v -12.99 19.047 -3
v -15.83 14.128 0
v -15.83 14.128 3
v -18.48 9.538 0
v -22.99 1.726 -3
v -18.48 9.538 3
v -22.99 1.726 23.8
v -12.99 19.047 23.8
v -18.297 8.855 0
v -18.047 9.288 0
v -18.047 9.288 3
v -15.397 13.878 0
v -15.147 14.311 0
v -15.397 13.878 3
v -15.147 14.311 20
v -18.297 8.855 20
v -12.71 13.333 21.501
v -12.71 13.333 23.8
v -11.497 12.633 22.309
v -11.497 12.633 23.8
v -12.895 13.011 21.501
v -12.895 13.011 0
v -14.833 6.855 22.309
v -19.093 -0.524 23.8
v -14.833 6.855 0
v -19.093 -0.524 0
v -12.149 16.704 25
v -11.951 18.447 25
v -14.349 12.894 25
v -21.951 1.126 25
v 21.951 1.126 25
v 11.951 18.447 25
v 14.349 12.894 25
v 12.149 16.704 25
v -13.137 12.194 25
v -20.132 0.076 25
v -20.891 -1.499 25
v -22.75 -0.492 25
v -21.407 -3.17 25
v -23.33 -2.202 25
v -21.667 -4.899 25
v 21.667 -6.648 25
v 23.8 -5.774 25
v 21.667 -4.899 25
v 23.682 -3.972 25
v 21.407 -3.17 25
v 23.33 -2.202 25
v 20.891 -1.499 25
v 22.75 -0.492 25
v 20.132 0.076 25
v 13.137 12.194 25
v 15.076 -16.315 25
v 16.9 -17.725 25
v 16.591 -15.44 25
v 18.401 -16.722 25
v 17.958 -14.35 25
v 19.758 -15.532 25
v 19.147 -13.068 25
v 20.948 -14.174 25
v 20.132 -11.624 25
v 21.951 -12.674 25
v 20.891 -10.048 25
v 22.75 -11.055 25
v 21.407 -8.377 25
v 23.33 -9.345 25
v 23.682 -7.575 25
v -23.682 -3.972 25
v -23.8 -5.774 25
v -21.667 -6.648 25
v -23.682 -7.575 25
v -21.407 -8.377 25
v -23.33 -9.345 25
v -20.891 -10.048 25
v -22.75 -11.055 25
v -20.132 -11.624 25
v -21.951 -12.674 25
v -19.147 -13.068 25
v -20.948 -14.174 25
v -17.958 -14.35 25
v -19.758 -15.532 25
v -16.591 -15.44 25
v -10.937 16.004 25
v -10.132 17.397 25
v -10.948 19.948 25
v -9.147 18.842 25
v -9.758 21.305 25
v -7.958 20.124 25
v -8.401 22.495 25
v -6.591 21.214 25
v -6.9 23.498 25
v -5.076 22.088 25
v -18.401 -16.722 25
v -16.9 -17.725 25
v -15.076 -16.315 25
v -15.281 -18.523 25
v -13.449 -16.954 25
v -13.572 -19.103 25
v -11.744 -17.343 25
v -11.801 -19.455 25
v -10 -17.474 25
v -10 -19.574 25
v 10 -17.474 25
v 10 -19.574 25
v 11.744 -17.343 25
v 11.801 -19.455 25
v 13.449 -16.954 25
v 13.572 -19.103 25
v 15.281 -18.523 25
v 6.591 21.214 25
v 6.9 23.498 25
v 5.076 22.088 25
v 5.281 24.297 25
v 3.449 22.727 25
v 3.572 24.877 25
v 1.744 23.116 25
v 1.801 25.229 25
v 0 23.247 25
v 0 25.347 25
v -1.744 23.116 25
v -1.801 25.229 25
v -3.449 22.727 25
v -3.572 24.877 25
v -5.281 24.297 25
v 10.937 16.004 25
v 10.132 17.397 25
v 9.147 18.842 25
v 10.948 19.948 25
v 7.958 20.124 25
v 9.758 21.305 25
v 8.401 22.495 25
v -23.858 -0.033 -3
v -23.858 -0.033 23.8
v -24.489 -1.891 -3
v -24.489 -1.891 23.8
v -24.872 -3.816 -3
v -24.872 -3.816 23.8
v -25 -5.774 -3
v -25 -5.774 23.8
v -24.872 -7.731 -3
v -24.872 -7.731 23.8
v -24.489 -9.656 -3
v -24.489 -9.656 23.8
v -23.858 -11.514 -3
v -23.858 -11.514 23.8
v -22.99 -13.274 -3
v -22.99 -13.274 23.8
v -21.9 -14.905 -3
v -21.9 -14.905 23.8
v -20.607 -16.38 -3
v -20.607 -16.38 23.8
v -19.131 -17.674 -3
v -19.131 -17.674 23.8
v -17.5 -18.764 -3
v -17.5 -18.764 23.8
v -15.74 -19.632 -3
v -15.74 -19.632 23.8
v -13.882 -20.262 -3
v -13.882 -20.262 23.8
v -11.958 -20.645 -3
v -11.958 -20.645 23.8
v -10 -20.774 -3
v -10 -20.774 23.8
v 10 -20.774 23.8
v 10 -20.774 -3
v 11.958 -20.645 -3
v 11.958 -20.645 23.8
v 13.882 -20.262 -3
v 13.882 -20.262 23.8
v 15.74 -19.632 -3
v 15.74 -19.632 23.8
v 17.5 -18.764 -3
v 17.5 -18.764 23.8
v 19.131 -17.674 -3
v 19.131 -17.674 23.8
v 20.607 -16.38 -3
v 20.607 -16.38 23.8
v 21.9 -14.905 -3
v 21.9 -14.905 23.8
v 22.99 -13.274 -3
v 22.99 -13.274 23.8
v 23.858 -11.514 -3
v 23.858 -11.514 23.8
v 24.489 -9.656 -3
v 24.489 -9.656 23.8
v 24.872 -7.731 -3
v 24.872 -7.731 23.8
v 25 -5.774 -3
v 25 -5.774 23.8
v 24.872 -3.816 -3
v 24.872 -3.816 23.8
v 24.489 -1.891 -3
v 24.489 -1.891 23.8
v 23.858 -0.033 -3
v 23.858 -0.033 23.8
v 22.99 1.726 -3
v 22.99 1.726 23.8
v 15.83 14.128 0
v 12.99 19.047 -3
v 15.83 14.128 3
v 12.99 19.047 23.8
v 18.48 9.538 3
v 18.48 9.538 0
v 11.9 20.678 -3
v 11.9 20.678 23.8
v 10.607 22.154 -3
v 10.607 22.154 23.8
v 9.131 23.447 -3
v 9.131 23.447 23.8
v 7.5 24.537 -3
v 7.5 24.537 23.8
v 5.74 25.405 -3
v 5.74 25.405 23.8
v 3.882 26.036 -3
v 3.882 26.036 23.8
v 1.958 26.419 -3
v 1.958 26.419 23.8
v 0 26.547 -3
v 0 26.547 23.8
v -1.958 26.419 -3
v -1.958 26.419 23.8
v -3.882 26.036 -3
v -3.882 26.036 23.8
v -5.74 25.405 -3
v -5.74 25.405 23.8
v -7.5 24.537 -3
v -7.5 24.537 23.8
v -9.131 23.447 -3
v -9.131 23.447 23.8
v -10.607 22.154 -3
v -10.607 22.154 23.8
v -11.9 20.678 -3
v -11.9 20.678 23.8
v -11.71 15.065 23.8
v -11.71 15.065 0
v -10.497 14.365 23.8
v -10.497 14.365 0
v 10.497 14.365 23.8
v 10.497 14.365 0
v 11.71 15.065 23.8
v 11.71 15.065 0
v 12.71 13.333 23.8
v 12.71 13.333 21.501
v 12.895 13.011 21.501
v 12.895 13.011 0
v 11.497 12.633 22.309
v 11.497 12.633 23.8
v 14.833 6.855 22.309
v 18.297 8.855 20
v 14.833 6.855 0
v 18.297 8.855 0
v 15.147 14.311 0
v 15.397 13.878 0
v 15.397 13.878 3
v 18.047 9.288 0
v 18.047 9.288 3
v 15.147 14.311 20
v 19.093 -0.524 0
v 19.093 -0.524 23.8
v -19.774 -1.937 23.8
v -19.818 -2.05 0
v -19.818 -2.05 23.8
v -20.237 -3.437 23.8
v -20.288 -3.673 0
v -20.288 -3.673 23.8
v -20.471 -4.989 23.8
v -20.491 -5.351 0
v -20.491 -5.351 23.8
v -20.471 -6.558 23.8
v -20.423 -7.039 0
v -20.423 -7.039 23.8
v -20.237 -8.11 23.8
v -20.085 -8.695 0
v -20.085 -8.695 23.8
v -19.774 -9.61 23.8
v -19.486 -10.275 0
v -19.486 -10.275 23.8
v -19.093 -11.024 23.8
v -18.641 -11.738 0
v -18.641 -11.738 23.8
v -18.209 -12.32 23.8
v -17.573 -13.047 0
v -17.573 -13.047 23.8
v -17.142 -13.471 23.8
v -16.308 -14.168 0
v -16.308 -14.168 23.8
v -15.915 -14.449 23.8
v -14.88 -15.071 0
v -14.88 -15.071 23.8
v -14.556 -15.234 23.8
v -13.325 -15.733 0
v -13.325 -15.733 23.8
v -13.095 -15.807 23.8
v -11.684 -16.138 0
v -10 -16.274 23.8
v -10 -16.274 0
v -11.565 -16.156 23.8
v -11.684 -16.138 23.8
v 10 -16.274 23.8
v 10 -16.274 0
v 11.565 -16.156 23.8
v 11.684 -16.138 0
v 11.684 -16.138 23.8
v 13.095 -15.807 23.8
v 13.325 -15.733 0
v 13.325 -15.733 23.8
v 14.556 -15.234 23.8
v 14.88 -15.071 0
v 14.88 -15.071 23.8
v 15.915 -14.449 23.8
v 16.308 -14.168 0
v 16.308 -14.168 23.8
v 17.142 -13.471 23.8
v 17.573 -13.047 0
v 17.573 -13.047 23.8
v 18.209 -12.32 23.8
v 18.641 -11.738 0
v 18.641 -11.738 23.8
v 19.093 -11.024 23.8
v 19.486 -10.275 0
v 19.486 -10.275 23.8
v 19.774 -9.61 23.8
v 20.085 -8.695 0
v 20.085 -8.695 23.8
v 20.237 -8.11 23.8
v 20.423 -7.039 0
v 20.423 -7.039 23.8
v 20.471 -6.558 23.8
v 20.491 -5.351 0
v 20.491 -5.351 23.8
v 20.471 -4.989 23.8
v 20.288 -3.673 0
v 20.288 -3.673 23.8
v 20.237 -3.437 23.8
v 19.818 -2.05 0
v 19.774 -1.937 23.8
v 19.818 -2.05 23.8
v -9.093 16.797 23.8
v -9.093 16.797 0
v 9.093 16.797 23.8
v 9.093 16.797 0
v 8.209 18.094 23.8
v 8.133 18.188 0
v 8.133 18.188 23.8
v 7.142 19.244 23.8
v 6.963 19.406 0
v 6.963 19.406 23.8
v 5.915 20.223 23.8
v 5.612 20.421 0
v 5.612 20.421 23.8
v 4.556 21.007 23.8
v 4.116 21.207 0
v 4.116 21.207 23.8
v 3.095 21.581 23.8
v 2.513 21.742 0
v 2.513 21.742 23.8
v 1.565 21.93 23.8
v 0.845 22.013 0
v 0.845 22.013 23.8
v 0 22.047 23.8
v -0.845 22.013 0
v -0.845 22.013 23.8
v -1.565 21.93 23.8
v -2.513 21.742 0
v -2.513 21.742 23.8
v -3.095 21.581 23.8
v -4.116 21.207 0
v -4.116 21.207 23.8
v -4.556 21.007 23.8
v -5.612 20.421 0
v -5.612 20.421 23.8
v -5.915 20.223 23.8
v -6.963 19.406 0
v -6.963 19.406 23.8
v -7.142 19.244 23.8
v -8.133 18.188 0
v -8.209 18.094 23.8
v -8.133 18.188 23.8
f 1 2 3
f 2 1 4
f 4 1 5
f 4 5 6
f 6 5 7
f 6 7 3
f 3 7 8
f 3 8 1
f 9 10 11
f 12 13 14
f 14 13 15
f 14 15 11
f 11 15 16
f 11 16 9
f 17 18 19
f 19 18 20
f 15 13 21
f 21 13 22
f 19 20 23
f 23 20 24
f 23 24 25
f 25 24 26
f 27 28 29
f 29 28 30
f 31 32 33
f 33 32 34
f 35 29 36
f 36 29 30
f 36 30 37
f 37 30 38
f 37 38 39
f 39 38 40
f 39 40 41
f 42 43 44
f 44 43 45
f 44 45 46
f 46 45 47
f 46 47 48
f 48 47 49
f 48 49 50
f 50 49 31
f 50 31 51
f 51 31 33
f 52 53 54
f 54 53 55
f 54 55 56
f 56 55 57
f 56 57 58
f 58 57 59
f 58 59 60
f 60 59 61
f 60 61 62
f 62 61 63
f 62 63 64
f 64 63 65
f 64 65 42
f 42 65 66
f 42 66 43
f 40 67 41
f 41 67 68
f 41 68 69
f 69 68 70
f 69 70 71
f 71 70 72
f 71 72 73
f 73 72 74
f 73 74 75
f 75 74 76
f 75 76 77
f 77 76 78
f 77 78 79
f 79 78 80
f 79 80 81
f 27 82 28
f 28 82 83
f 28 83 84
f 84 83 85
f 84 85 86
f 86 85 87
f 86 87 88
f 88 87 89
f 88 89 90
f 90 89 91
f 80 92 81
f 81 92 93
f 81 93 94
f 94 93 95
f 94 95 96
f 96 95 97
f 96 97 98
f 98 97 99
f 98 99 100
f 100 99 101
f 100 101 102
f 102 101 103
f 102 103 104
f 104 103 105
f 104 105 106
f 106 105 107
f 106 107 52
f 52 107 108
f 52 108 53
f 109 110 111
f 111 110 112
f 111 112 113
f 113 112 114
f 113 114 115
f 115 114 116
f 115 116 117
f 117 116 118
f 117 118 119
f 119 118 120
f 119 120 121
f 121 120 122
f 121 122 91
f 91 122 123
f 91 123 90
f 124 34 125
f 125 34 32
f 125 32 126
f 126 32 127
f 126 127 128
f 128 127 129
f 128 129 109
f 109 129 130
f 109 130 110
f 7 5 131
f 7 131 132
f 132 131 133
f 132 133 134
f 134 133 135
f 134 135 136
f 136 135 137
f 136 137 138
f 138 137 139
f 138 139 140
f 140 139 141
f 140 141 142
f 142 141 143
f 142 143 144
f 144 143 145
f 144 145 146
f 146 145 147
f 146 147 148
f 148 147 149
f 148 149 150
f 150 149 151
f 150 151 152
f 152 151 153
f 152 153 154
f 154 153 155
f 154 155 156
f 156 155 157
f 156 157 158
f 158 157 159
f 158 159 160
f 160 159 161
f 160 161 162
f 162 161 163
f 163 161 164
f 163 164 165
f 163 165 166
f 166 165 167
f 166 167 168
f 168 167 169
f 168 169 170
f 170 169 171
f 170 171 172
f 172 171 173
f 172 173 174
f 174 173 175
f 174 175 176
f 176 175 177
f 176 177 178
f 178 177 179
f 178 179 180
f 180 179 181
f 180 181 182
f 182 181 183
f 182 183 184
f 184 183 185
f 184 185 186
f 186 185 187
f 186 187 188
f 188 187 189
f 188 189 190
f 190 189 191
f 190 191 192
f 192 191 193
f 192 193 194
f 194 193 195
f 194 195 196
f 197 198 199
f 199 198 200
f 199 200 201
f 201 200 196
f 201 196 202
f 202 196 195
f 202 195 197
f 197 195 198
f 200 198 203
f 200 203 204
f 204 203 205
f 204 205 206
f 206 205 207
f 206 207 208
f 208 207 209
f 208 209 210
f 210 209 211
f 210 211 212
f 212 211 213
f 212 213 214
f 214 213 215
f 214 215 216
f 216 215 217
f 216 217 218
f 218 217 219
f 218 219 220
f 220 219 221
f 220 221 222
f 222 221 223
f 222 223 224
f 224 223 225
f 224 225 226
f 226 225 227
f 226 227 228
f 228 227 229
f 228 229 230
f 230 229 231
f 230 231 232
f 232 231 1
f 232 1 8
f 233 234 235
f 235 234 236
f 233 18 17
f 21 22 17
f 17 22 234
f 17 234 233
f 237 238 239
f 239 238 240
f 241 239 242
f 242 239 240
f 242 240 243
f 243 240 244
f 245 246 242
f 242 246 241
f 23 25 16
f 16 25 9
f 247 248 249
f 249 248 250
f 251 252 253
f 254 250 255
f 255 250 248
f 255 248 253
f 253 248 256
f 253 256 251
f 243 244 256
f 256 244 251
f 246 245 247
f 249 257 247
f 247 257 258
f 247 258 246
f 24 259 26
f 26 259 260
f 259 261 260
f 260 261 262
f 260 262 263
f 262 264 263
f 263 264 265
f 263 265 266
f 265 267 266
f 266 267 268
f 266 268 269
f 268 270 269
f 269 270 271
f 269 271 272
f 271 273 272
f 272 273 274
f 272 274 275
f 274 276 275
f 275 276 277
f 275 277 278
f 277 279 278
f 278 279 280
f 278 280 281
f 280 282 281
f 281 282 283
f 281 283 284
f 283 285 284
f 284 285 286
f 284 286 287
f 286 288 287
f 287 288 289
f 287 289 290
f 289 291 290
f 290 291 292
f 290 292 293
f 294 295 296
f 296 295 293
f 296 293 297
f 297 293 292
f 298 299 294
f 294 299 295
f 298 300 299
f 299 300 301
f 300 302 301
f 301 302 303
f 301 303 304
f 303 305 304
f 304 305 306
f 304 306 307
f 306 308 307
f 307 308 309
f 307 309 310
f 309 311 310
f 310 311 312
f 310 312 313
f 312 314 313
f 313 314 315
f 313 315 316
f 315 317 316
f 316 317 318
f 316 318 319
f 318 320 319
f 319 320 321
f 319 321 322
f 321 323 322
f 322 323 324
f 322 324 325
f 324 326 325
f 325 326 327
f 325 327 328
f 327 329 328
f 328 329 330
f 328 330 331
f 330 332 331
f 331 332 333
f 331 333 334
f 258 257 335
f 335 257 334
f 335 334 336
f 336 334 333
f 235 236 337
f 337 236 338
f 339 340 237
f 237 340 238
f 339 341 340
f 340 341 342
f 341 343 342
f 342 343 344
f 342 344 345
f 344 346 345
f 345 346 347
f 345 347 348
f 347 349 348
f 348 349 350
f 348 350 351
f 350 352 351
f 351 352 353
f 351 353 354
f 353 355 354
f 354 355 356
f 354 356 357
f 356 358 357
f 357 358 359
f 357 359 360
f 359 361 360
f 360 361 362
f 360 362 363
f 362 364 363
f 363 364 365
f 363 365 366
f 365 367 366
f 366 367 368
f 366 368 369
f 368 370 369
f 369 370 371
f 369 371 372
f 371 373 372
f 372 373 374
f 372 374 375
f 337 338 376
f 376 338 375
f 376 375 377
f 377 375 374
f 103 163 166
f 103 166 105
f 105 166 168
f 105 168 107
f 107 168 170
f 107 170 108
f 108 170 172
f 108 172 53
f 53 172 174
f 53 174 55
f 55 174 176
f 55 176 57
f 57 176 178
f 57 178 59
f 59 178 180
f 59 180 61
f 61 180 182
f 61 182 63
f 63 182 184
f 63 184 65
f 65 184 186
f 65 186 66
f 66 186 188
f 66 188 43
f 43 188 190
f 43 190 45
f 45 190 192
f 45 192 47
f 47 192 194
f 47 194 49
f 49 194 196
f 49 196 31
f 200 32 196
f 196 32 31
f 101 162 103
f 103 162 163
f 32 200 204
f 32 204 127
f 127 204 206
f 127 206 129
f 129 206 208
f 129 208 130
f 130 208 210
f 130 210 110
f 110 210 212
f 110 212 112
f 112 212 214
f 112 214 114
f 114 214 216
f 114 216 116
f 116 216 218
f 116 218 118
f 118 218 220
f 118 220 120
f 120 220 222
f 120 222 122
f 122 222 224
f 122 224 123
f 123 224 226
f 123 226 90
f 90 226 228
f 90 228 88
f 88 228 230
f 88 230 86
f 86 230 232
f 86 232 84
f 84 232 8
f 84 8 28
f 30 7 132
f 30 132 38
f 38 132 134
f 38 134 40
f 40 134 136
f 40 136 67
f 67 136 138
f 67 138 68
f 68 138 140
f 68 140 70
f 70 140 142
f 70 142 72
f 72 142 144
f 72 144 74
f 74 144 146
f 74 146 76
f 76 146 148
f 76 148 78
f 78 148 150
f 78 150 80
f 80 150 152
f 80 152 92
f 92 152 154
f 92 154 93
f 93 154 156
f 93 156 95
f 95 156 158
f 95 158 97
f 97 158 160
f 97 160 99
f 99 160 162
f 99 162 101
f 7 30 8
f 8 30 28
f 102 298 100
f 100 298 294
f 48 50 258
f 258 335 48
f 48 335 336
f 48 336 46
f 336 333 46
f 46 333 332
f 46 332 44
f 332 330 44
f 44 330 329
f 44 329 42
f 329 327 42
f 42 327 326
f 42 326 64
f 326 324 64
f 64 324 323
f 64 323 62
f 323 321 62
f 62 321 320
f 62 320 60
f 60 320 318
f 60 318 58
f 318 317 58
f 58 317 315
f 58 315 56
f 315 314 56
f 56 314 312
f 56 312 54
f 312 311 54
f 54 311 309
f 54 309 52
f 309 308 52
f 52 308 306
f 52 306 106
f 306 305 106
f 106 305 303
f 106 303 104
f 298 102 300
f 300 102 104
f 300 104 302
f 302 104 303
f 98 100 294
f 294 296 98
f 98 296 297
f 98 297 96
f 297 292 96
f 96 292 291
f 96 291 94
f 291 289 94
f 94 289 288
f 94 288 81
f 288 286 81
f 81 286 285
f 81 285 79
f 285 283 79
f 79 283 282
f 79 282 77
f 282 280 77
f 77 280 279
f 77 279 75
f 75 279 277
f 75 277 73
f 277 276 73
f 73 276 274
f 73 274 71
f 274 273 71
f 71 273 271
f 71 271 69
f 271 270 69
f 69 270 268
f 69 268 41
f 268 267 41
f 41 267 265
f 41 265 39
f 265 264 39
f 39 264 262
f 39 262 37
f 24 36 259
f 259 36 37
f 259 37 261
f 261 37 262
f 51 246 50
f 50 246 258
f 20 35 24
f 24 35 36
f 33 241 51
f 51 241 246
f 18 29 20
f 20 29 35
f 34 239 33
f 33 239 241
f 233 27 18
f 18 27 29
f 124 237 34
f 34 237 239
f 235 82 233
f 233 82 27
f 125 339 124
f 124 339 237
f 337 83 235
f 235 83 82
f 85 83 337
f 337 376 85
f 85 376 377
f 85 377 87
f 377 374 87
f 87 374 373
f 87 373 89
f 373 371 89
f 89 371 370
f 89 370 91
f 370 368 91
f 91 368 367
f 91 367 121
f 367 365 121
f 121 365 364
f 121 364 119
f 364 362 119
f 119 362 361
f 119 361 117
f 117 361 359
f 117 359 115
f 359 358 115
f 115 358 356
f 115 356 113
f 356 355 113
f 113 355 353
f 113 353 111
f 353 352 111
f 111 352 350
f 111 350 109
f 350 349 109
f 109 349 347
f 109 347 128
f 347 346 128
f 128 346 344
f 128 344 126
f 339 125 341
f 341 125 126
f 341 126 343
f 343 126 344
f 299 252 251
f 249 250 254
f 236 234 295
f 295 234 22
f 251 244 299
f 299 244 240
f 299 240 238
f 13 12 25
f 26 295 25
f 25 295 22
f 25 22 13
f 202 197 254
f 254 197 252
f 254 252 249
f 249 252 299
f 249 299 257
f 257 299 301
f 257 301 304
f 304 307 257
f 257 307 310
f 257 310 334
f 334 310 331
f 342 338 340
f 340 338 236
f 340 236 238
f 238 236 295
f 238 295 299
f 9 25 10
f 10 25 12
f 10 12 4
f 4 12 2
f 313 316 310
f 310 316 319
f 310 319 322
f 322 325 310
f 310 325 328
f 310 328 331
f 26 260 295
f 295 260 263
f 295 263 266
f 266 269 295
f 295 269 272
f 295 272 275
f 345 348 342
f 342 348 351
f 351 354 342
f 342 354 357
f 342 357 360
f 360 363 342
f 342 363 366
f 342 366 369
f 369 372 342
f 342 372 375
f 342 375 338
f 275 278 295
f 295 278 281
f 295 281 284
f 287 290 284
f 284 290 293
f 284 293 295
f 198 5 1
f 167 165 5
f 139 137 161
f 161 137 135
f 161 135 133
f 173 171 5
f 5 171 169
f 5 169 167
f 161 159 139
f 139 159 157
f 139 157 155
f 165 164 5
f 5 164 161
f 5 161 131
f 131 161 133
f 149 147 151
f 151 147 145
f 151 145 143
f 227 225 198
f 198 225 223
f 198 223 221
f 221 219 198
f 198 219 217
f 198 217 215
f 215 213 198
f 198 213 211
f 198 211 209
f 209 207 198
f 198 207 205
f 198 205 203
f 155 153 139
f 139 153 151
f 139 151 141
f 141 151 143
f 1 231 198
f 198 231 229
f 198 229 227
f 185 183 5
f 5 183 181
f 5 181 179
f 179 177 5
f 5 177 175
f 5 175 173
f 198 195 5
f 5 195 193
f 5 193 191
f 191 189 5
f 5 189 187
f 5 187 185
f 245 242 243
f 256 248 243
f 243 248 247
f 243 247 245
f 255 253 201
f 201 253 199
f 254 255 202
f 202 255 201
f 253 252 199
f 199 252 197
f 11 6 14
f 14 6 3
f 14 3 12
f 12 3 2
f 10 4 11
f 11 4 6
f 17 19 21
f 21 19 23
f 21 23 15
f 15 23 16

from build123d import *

# Parameters (mm, degrees)
BOSS_EXTRU_1_DEPTH      = 25
ENL_V_MAT_EXTRU_1_DEPTH = 20
ENL_V_MAT_EXTRU_2_DEPTH = 45.21248121115924
ENL_V_MAT_EXTRU_4_DEPTH = 20
ENL_V_MAT_EXTRU_3_DEPTH = 45.21248121115924
CHANFREIN1_SIZE         = 1.2
BOSS_EXTRU_2_START      = 3
BOSS_EXTRU_2_DEPTH      = 3
ENL_V_MAT_EXTRU_5_REACH = 47.001
ESQUISSE7_W             = 1.399999999999995
ESQUISSE7_H             = 20
CHANFREIN2_SIZE2        = 4
CHANFREIN2_SIZE         = 2.309401077
ENL_V_MAT_EXTRU_6_REACH = 60.237
CHANFREIN3_SIZE2        = 4
CHANFREIN3_SIZE         = 2.309401077


with BuildPart() as part:
    # Esquisse1 → Boss.-Extru.1 (new body)
    with BuildSketch(Plane.XY):
        with BuildLine():
            Line((-22.99038105676658, 1.7264973081037391), (-12.990381056766578, 19.047005383792516))
            ThreePointArc((-12.990381056766578, 19.047005383792516), (9.5e-16, 26.547005383792516), (12.990381056766578, 19.047005383792513))
            Line((12.990381056766578, 19.047005383792513), (22.990381056766577, 1.726497308103746))
            ThreePointArc((22.990381056766577, 1.726497308103746), (22.99038105676658, -13.273502691896258), (9.999999999999996, -20.77350269189626))
            Line((9.999999999999996, -20.77350269189626), (-10, -20.773502691896258))
            ThreePointArc((-10, -20.773502691896258), (-22.99038105676658, -13.273502691896255), (-22.99038105676658, 1.7264973081037391))
        make_face()
        with BuildLine():
            Line((-18.66025403784439, -0.7735026918962613), (-8.66025403784439, 16.547005383792516))
            ThreePointArc((-8.66025403784439, 16.547005383792516), (-2.69e-15, 21.547005383792516), (8.660254037844384, 16.547005383792516))
            Line((8.660254037844384, 16.547005383792516), (18.660254037844386, -0.7735026918962474))
            ThreePointArc((18.660254037844386, -0.7735026918962474), (18.660254037844393, -10.773502691896258), (10, -15.773502691896258))
            Line((10, -15.773502691896258), (-10, -15.773502691896258))
            ThreePointArc((-10, -15.773502691896258), (-18.66025403784439, -10.773502691896262), (-18.66025403784439, -0.7735026918962613))
        make_face(mode=Mode.SUBTRACT)
    extrude(amount=BOSS_EXTRU_1_DEPTH)

    # Esquisse2 → Enlèv. mat.-Extru.1 (cut)
    with BuildSketch(Plane.XY.offset(25)):
        Polygon((-10.914359353944898, 12.642780450695335), (-12.300000000000002, 13.442780450695334), (-11.600000000000003, 14.655216015993549), (-10.2143593539449, 13.855216015993548), align=None)
        Polygon((10.214359353944896, 13.855216015993548), (11.6, 14.655216015993549), (12.299999999999999, 13.442780450695334), (10.914359353944896, 12.642780450695334), align=None)
    extrude(amount=-ENL_V_MAT_EXTRU_1_DEPTH, mode=Mode.SUBTRACT)

    # Esquisse3 → Enlèv. mat.-Extru.2 (cut, through all)
    with BuildSketch(Plane.XY.offset(25)):
        Polygon((-10.064359353944898, 14.115023637128878), (-11.709807621135333, 15.06502363712888), (-12.709807621135335, 13.332972829560003), (-11.064359353944898, 12.382972829560003), align=None)
    enl_v_mat_extru_2 = extrude(amount=-ENL_V_MAT_EXTRU_2_DEPTH, mode=Mode.SUBTRACT)

    # Symétrie1: Enlèv. mat.-Extru.2 across plane
    add(enl_v_mat_extru_2.mirror(Plane(origin=(0, 0, 0), x_dir=(0, 0, 1), z_dir=(1, 0, 0))), mode=Mode.SUBTRACT)

    # Esquisse6 → Enlèv. mat.-Extru.4 (cut)
    with BuildSketch(Plane(origin=(0, 0, 0), x_dir=(-1, 0, 0), z_dir=(0, 0, -1))):
        Polygon((11.250000000000002, 12.061433798642659), (15.147114317029969, 14.31143379864266), (18.297114317029976, 8.855473754800698), (14.4, 6.605473754800695), align=None)
        Polygon((-11.249999999999998, 12.061433798642659), (-15.14711431702997, 14.311433798642657), (-18.297114317029973, 8.855473754800693), (-14.399999999999997, 6.605473754800696), align=None)
    extrude(amount=-ENL_V_MAT_EXTRU_4_DEPTH, mode=Mode.SUBTRACT)

    # Esquisse5 → Enlèv. mat.-Extru.3 (cut, through all)
    with BuildSketch(Plane.XY.offset(25)):
        with BuildLine():
            Line((-9.093266739736611, 16.797005383792516), (-10.497372055837118, 14.365023637128878))
            Line((-10.497372055837118, 14.365023637128878), (-11.497372055837118, 12.632972829560003))
            Line((-11.497372055837118, 12.632972829560003), (-19.093266739736613, -0.5235026918962613))
            ThreePointArc((-19.093266739736613, -0.5235026918962613), (-19.09326673973661, -11.023502691896262), (-10.000000000000002, -16.273502691896258))
            Line((-10.000000000000002, -16.273502691896258), (10.000000000000004, -16.273502691896258))
            ThreePointArc((10.000000000000004, -16.273502691896258), (19.09326673973661, -11.023502691896251), (19.093266739736602, -0.523502691896249))
            Line((19.093266739736602, -0.523502691896249), (11.497372055837113, 12.632972829560005))
            Line((11.497372055837113, 12.632972829560005), (10.497372055837118, 14.36502363712888))
            Line((10.497372055837118, 14.36502363712888), (9.0932667397366, 16.797005383792516))
            ThreePointArc((9.0932667397366, 16.797005383792516), (-2.66e-15, 22.047005383792516), (-9.093266739736611, 16.797005383792516))
        make_face()
        with BuildLine():
            Line((-8.66025403784439, 16.547005383792516), (-10.064359353944898, 14.115023637128878))
            Line((-10.064359353944898, 14.115023637128878), (-11.064359353944894, 12.382972829560005))
            Line((-11.064359353944894, 12.382972829560005), (-18.66025403784439, -0.7735026918962613))
            ThreePointArc((-18.66025403784439, -0.7735026918962613), (-18.66025403784439, -10.773502691896262), (-10, -15.773502691896258))
            Line((-10, -15.773502691896258), (10.000000000000002, -15.77350269189626))
            ThreePointArc((10.000000000000002, -15.77350269189626), (18.66025403784439, -10.773502691896255), (18.660254037844386, -0.7735026918962474))
            Line((18.660254037844386, -0.7735026918962474), (11.064359353944898, 12.382972829560003))
            Line((11.064359353944898, 12.382972829560003), (10.064359353944898, 14.115023637128878))
            Line((10.064359353944898, 14.115023637128878), (8.660254037844384, 16.547005383792516))
            ThreePointArc((8.660254037844384, 16.547005383792516), (-2.69e-15, 21.547005383792516), (-8.66025403784439, 16.547005383792516))
        make_face(mode=Mode.SUBTRACT)
    extrude(amount=-ENL_V_MAT_EXTRU_3_DEPTH, mode=Mode.SUBTRACT)

    # Chanfrein1
    chanfrein1_edges = [part.edges().sort_by_distance(p)[0] for p in [
        (22.99038105676658, -13.27350269189626, 25),
        (11.103589838486222, 14.715023637128876, 25),
        (-11.103589838486226, 14.71502363712888, 25),
        (-9.795319397786868, 15.581014510460694, 25),
        (9.795319397786855, 15.581014510460696, 25),
        (-7.11e-15, 22.047005383792516, 25),
        (-15.295319397786866, 6.054735068831872, 25),
        (-19.09326673973661, -11.023502691896262, 25),
        (1.78e-15, -16.273502691896258, 25),
        (19.093266739736606, -11.023502691896253, 25),
        (15.295319397786855, 6.054735068831873, 25),
        (17.990381056766577, 10.386751345948129, 25),
        (2.66e-15, 26.547005383792516, 25),
        (-17.99038105676658, 10.386751345948127, 25),
        (-22.99038105676658, -13.273502691896258, 25),
        (-12.209807621135333, 14.19899823334444, 25),
        (-12.103589838486226, 12.982972829560003, 25),
        (-1.78e-15, -20.77350269189626, 25),
        (12.209807621135335, 14.19899823334444, 25),
        (12.103589838486222, 12.982972829560001, 25),
    ]]
    chamfer(chanfrein1_edges, length=CHANFREIN1_SIZE)

    # Esquisse4 → Boss.-Extru.2 (add)
    with BuildSketch(Plane(origin=(0, 0, 0), x_dir=(-1, 0, 0), z_dir=(0, 0, -1)).offset(BOSS_EXTRU_2_START)):
        with BuildLine():
            Line((22.99038105676658, 1.7264973081037323), (12.990381056766578, 19.047005383792516))
            ThreePointArc((12.990381056766578, 19.047005383792516), (8.9e-16, 26.547005383792513), (-12.990381056766573, 19.047005383792513))
            Line((-12.990381056766573, 19.047005383792513), (-22.990381056766577, 1.726497308103746))
            ThreePointArc((-22.990381056766577, 1.726497308103746), (-22.99038105676658, -13.273502691896255), (-10.000000000000004, -20.773502691896258))
            Line((-10.000000000000004, -20.773502691896258), (9.999999999999996, -20.773502691896258))
            ThreePointArc((9.999999999999996, -20.773502691896258), (22.990381056766577, -13.273502691896262), (22.99038105676658, 1.7264973081037323))
        make_face()
    extrude(amount=-BOSS_EXTRU_2_DEPTH)

    # Esquisse7 → Enlèv. mat.-Extru.5 (cut, up to next)
    with BuildSketch(Plane(origin=(-2.5958946838994956, 4.496221483611885, 0), x_dir=(0.866025403784439, 0.4999999999999994, 0), z_dir=(-0.4999999999999994, 0.866025403784439, 0)), mode=Mode.PRIVATE) as enl_v_mat_extru_5_sk1:
        with Locations((16.973502691896265, -10)):
            Rectangle(ESQUISSE7_W, ESQUISSE7_H)
    enl_v_mat_extru_5_tool1 = extrude(enl_v_mat_extru_5_sk1.sketch, amount=-ENL_V_MAT_EXTRU_5_REACH, mode=Mode.PRIVATE) & part.part
    enl_v_mat_extru_5 = enl_v_mat_extru_5_tool1.solids().sort_by_distance((12.10359, 12.982973, 10))[0]
    add(enl_v_mat_extru_5, mode=Mode.SUBTRACT)

    # Symétrie2: Enlèv. mat.-Extru.5 across plane
    add(enl_v_mat_extru_5.mirror(Plane(origin=(0, 0, 0), x_dir=(0, 0, 1), z_dir=(1, 0, 0))), mode=Mode.SUBTRACT)

    # Chanfrein2
    chanfrein2_edges = [part.edges().sort_by_distance(p)[0] for p in [
        (13.16519237886467, 9.74422329218035, 20),
    ]]
    chanfrein2_side = [part.faces().sort_by_distance(p)[0] for p in [
        (13.16519237886467, 9.74422329218035, 20.04618802153517),
    ]]
    chamfer(chanfrein2_edges, length=CHANFREIN2_SIZE - 0.0001, length2=CHANFREIN2_SIZE2 - 0.0001, reference=chanfrein2_side[0])  # a hair under: the kernel refuses the full size

    # Esquisse8 → Enlèv. mat.-Extru.6 (cut, up to next)
    with BuildSketch(Plane(origin=(17.557368354874363, 10.13675134594814, 0), x_dir=(0, 0, 1), z_dir=(-0.8660254037844385, -0.5000000000000004, 0)), mode=Mode.PRIVATE) as enl_v_mat_extru_6_sk1:
        Polygon((3.0000000000000004, 4.320508075688777), (5.3e-16, 4.320508075688777), (8.7e-16, -0.9794919243112247), (3.000000000000001, -0.9794919243112244), align=None)
    enl_v_mat_extru_6_tool1 = extrude(enl_v_mat_extru_6_sk1.sketch, amount=-ENL_V_MAT_EXTRU_6_REACH, mode=Mode.PRIVATE) & part.part
    enl_v_mat_extru_6 = enl_v_mat_extru_6_tool1.solids().sort_by_distance((16.722114, 11.583454, 1.5))[0]
    add(enl_v_mat_extru_6, mode=Mode.SUBTRACT)

    # Symétrie3: Enlèv. mat.-Extru.6 across plane
    add(enl_v_mat_extru_6.mirror(Plane(origin=(0, 0, 0), x_dir=(0, 0, 1), z_dir=(1, 0, 0))), mode=Mode.SUBTRACT)

    # Chanfrein3
    chanfrein3_edges = [part.edges().sort_by_distance(p)[0] for p in [
        (-13.16519237886467, 9.74422329218035, 20),
    ]]
    chanfrein3_side = [part.faces().sort_by_distance(p)[0] for p in [
        (-13.16519237886467, 9.74422329218035, 20.04618802153517),
    ]]
    chamfer(chanfrein3_edges, length=CHANFREIN3_SIZE - 0.0001, length2=CHANFREIN3_SIZE2 - 0.0001, reference=chanfrein3_side[0])  # a hair under: the kernel refuses the full size


solid = part.part
